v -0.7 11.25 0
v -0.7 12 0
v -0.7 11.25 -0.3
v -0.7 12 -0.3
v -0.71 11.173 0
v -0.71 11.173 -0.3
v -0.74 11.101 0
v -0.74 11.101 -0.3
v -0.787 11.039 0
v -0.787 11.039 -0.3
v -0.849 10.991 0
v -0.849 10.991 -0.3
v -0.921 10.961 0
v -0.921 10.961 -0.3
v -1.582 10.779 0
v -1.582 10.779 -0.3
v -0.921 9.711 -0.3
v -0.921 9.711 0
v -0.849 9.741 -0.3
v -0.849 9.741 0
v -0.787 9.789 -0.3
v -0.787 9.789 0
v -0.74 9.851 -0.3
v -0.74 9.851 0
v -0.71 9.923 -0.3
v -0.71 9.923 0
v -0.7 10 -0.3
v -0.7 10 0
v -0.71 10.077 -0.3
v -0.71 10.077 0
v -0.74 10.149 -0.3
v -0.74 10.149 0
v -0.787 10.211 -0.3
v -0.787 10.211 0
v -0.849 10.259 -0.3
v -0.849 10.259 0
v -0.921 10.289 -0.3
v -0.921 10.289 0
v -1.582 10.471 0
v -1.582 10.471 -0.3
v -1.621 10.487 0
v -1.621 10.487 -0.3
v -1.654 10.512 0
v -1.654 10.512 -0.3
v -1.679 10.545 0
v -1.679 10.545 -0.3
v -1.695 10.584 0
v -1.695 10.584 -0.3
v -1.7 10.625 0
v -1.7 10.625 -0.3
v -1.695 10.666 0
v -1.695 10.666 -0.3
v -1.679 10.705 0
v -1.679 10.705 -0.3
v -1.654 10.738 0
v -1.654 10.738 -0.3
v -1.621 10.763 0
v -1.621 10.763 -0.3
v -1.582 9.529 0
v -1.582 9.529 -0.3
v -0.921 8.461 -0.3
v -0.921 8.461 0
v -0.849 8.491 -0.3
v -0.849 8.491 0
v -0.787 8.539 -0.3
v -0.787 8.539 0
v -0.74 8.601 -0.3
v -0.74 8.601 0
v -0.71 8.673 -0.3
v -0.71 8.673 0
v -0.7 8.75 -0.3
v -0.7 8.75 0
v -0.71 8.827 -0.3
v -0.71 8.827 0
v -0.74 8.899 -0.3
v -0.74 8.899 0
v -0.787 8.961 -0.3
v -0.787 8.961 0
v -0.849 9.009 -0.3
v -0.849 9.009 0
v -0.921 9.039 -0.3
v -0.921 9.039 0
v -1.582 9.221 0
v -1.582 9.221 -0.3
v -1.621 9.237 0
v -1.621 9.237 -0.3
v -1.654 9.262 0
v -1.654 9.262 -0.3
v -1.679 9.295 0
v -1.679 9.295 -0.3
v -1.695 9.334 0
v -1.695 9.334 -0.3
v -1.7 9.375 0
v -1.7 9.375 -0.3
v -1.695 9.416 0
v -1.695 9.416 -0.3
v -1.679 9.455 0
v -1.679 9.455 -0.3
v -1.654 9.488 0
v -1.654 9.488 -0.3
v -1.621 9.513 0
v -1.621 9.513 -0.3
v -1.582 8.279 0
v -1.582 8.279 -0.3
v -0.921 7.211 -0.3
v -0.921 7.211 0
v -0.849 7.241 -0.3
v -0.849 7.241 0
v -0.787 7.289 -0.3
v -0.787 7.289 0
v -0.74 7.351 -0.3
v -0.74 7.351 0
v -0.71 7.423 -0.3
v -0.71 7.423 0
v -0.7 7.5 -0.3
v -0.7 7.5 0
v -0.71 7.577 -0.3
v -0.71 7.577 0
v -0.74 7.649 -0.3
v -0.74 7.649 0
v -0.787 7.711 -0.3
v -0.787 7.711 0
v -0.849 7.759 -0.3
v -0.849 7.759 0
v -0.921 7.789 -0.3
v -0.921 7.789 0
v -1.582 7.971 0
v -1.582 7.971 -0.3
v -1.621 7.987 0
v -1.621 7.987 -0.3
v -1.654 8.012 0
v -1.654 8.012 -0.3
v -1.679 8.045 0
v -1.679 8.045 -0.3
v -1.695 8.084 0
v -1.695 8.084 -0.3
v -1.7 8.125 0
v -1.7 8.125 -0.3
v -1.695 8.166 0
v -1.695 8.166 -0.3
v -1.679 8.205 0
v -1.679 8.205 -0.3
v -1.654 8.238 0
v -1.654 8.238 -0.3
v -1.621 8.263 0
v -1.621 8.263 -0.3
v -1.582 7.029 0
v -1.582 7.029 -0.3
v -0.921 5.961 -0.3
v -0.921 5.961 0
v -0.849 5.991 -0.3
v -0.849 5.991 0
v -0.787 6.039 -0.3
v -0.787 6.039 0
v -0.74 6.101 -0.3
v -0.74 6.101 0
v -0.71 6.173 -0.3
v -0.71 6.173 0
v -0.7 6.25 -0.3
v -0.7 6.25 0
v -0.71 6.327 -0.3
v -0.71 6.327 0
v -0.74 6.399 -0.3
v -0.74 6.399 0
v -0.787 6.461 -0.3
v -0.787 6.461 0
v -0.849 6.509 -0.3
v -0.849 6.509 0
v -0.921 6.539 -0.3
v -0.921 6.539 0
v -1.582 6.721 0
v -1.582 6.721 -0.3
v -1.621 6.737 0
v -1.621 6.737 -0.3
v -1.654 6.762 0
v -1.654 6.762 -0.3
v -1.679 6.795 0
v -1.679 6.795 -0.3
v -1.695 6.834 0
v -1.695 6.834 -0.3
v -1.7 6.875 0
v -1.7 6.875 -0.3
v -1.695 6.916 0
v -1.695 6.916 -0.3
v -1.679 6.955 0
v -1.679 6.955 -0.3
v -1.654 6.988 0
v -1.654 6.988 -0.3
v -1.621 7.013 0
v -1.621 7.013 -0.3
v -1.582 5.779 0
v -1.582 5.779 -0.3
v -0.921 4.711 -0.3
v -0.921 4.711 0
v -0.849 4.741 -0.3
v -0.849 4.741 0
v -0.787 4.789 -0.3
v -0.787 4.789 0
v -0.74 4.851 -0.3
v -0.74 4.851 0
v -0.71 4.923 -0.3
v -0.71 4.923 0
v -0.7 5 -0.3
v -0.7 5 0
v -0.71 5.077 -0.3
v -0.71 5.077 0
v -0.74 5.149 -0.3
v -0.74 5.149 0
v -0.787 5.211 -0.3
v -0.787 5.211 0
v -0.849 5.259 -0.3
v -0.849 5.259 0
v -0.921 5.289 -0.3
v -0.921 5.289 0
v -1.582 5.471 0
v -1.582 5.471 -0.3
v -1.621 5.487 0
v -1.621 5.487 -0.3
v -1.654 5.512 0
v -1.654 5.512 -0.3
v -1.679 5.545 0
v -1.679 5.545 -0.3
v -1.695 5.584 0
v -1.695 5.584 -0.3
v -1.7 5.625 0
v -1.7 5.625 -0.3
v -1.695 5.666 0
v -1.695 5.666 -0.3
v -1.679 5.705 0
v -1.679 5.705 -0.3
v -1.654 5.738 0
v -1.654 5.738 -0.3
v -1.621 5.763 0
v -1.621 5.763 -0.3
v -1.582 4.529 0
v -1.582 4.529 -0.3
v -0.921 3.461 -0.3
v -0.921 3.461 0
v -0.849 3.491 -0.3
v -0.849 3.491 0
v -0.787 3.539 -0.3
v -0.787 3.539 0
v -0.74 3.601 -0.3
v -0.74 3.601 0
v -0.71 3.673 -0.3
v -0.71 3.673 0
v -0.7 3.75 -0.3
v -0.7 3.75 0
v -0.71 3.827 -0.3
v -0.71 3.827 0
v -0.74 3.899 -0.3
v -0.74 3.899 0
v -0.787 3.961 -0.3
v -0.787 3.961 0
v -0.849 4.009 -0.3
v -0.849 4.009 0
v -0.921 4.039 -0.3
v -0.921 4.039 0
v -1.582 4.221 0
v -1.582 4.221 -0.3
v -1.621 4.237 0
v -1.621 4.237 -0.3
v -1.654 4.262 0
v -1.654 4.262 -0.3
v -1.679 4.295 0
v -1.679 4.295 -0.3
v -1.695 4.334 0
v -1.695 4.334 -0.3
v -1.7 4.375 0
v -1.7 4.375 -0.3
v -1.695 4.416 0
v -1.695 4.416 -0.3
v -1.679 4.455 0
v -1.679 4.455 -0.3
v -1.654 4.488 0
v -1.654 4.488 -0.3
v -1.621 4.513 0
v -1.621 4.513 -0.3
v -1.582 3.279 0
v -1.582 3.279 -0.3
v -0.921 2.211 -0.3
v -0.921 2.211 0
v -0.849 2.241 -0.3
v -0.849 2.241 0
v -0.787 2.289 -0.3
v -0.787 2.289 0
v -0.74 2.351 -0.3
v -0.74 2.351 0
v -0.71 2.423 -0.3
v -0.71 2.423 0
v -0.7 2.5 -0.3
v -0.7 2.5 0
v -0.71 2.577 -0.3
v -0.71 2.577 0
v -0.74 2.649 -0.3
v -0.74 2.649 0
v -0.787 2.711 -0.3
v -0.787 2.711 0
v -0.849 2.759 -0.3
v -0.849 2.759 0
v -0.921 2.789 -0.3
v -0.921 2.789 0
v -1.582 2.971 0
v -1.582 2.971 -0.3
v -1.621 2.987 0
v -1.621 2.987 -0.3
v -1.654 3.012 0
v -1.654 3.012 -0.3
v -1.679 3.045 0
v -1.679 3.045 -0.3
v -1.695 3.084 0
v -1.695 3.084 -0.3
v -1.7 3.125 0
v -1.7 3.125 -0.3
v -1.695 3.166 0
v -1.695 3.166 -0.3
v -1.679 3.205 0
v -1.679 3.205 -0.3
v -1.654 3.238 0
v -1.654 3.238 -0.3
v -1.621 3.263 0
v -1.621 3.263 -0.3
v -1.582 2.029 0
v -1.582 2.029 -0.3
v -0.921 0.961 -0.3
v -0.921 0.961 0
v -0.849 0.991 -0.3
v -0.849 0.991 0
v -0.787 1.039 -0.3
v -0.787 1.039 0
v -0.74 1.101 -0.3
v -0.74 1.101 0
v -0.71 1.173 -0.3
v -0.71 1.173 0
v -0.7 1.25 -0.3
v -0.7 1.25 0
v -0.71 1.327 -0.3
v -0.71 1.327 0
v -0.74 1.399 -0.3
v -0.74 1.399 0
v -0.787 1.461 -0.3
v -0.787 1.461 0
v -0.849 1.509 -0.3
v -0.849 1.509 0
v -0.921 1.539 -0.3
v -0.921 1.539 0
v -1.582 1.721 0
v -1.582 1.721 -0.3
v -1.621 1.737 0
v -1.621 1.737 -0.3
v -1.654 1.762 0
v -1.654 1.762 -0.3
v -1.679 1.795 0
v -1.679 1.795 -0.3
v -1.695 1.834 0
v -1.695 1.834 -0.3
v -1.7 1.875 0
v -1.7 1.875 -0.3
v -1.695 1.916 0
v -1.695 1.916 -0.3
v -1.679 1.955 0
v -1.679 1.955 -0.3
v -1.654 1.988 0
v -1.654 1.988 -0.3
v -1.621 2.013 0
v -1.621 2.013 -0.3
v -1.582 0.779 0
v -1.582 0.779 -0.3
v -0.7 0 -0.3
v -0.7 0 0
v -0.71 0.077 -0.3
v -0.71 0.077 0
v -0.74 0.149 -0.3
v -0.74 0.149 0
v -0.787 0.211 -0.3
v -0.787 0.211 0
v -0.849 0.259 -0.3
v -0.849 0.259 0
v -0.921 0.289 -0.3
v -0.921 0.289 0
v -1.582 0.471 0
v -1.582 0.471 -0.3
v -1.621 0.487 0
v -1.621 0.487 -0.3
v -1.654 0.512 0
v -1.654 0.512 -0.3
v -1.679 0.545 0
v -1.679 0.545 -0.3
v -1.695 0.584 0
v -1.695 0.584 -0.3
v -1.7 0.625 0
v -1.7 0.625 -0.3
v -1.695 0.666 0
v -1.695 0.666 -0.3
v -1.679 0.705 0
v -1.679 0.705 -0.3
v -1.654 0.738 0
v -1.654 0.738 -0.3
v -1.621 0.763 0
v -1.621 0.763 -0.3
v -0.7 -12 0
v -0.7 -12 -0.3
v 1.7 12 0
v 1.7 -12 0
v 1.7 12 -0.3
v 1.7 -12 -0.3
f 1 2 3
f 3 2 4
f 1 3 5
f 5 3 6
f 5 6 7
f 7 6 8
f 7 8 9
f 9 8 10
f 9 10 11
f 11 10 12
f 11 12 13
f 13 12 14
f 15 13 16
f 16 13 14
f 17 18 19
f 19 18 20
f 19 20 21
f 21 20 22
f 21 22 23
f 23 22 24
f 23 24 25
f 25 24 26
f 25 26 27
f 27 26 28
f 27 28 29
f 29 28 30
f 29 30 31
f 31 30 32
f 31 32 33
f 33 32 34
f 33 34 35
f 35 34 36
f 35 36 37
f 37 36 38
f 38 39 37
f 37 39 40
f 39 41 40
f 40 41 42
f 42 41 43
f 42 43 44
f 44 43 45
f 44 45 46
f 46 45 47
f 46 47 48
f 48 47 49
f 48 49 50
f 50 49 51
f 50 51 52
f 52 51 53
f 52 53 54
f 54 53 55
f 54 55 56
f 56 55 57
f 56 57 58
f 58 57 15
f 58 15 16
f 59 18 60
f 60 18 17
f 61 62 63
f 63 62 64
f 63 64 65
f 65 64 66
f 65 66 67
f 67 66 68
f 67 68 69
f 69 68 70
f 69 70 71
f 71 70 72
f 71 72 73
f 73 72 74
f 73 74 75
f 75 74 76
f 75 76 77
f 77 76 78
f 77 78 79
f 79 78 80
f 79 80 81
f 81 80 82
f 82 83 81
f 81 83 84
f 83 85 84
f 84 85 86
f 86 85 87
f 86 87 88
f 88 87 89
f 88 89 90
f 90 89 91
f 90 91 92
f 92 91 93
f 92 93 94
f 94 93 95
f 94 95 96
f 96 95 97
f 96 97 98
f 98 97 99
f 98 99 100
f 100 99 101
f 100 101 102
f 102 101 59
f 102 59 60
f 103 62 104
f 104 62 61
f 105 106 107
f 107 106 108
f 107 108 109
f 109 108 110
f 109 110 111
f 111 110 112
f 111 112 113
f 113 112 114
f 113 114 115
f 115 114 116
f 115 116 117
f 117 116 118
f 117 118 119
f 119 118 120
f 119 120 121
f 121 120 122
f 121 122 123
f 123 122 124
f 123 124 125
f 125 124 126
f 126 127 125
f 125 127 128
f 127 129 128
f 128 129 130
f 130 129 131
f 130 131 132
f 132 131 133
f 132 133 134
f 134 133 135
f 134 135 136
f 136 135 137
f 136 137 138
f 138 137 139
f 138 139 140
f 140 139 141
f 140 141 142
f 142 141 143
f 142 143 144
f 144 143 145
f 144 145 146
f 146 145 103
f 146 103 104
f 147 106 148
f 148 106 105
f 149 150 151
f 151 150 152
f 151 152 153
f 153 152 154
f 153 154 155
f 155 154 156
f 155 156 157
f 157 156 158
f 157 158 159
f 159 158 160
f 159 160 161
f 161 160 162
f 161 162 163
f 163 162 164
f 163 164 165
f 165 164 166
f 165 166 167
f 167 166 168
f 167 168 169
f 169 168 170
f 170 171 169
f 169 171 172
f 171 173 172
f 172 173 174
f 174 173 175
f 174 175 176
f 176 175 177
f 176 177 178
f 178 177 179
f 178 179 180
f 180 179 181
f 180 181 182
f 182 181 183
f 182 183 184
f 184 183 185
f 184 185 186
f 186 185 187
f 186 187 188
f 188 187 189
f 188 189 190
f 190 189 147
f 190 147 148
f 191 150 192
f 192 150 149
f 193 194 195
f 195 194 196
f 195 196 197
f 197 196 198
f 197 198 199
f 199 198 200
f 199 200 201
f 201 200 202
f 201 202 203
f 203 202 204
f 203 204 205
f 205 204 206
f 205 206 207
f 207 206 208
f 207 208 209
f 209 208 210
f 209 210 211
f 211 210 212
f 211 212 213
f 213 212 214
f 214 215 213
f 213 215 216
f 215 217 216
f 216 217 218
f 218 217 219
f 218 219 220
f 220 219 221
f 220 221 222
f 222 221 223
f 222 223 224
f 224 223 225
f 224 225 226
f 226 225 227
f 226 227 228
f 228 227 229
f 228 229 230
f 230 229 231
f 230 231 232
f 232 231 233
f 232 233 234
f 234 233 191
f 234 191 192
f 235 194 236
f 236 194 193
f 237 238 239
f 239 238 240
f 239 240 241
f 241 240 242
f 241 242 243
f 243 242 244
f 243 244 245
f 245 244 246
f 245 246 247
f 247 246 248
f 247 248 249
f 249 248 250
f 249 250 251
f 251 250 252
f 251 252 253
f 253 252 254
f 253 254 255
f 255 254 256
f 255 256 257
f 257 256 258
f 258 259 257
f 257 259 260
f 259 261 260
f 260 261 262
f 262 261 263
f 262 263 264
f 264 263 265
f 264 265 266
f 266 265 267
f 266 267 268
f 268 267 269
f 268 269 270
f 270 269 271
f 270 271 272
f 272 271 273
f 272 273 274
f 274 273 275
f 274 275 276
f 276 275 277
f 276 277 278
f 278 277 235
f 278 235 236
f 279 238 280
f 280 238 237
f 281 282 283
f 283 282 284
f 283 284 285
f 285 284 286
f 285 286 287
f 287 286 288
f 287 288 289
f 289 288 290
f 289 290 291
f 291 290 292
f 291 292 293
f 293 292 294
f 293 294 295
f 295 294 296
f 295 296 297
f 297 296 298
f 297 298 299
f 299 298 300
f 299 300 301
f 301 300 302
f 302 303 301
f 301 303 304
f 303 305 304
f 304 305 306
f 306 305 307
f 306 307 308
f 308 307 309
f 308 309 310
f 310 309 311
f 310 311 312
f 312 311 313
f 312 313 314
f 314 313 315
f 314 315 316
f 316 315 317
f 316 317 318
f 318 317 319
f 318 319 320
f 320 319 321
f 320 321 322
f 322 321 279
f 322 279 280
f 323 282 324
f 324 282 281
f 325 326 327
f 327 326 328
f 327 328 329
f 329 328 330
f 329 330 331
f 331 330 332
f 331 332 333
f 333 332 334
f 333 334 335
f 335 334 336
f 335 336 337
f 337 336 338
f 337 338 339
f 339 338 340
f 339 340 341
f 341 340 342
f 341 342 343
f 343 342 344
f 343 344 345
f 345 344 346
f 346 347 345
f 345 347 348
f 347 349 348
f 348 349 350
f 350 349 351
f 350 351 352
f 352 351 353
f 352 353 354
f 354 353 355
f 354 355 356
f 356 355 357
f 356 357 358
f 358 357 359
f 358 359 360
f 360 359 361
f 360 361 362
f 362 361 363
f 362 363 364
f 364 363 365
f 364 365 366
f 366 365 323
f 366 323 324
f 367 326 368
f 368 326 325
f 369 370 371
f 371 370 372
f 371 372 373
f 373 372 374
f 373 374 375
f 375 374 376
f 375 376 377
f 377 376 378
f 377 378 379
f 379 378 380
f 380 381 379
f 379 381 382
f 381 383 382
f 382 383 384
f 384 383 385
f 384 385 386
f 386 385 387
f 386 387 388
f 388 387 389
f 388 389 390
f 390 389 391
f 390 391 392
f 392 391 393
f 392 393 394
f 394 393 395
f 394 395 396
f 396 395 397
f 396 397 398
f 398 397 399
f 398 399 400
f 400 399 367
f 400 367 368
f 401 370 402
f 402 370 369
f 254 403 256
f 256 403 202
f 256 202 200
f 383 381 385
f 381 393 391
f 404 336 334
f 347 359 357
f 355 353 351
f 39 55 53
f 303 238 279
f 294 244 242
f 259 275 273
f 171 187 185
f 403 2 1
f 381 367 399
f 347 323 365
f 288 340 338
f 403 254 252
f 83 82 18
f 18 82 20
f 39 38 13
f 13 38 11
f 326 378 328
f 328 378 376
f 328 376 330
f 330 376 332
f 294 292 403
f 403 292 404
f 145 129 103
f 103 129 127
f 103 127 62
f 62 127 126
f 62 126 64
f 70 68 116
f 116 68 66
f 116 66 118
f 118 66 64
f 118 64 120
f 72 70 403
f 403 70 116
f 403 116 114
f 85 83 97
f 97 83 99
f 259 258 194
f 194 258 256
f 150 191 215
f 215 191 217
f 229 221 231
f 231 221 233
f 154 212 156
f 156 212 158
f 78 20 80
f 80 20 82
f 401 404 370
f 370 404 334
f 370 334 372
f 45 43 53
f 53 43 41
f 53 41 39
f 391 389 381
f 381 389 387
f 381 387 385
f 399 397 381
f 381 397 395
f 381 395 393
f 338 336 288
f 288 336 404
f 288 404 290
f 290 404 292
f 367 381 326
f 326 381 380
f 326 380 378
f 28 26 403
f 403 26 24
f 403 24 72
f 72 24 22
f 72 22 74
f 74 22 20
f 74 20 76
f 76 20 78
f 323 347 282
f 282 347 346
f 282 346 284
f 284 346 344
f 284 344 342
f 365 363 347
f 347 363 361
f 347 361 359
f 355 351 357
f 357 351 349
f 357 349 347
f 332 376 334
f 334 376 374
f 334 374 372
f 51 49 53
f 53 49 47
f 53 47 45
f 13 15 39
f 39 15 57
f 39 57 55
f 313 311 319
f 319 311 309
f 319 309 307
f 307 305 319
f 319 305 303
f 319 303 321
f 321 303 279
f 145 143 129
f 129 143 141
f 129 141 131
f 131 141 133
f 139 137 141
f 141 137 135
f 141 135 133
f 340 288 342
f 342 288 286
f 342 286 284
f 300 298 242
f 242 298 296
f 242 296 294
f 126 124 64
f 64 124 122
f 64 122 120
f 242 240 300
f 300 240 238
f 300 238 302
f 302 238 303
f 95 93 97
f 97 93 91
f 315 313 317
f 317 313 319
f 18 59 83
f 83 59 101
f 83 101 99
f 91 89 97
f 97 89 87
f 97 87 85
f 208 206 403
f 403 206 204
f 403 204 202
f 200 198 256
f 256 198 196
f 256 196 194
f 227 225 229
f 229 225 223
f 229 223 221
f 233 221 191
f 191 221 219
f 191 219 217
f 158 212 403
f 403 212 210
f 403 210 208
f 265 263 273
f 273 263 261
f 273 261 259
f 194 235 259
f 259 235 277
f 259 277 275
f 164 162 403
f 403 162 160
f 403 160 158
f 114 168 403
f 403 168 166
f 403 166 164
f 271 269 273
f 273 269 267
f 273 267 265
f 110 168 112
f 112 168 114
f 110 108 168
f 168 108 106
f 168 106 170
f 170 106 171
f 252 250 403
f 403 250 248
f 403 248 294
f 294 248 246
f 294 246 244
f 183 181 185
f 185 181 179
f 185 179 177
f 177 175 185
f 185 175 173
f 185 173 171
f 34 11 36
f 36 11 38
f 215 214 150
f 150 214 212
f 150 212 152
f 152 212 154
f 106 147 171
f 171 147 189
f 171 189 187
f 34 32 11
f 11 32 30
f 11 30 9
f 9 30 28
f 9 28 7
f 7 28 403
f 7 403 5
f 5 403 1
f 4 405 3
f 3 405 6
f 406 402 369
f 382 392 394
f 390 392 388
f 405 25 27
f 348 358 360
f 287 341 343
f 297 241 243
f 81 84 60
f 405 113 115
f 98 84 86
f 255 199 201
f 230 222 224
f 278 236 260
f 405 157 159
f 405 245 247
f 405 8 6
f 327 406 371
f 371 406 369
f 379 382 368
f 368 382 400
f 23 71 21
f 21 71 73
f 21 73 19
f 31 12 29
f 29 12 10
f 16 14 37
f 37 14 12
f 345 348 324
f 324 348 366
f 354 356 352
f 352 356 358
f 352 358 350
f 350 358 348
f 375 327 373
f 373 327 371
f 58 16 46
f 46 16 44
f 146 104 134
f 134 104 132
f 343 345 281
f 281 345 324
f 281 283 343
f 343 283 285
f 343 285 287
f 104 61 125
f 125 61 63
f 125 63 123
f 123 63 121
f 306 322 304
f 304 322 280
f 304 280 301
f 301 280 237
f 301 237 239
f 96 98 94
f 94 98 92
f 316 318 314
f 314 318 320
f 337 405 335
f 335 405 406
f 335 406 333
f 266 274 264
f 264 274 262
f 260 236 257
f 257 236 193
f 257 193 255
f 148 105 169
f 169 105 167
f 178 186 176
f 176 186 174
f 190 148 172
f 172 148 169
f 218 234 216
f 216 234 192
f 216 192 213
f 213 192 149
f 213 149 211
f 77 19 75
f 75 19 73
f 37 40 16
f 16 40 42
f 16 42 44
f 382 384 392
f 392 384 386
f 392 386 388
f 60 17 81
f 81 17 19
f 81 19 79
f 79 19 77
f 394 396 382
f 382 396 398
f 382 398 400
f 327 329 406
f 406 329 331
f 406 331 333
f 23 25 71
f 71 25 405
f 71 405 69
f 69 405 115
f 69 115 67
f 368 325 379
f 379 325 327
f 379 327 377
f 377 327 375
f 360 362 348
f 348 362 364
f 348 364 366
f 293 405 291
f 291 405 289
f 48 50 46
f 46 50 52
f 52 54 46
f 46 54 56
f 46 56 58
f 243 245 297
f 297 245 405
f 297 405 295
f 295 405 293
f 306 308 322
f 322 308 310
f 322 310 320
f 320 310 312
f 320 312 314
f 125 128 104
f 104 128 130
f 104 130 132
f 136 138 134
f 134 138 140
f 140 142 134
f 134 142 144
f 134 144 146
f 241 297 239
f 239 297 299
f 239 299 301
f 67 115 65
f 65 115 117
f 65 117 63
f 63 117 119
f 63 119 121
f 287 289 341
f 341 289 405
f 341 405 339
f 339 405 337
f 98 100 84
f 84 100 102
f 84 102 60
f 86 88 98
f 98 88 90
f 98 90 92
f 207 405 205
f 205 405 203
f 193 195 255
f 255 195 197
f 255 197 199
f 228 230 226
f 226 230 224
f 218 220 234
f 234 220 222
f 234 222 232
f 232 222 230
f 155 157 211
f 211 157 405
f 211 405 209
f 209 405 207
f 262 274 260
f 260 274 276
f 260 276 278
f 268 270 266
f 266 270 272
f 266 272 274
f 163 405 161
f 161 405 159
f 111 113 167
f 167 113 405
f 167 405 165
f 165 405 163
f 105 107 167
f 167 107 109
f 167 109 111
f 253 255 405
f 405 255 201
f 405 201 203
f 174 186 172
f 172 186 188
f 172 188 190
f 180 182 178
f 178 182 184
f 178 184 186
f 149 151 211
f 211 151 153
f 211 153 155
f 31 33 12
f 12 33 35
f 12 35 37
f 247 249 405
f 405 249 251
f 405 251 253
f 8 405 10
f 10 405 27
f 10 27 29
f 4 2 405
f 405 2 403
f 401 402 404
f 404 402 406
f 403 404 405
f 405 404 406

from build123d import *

# Parameters (mm, degrees)
SKETCH1_W           = 3.4
SKETCH1_H           = 24
BOSS_EXTRUDE1_DEPTH = 0.3
CUT_EXTRUDE1_DEPTH  = 1.3
CUT_EXTRUDE2_DEPTH  = 1.3
LPATTERN1_COUNT     = 9
LPATTERN1_PITCH     = 1.25
CUT_EXTRUDE4_DEPTH  = 1.3


with BuildPart() as part:
    # Sketch1 → Boss-Extrude1 (new body)
    with BuildSketch(Plane.XY):
        Rectangle(SKETCH1_W, SKETCH1_H)
    extrude(amount=-BOSS_EXTRUDE1_DEPTH)

    # Sketch2 → Cut-Extrude1 (cut, through all)
    with BuildSketch(Plane.XY):
        with BuildLine():
            Line((-1.7, -12), (-0.7, -12))
            Line((-0.7, -12), (-0.7, 0))
            ThreePointArc((-0.7, 0), (-0.763092877, 0.185865622), (-0.926295644, 0.294914224))
            Line((-0.926295644, 0.294914224), (-1.581411047, 0.470451868))
            ThreePointArc((-1.581411047, 0.470451868), (-1.666936534, 0.527598171), (-1.7, 0.625))
            Line((-1.7, 0.625), (-1.7, -12))
        make_face()
    extrude(amount=-CUT_EXTRUDE1_DEPTH, mode=Mode.SUBTRACT)

    # Sketch3 → Cut-Extrude2 (cut, through all)
    with BuildSketch(Plane.XY):
        with BuildLine():
            Line((-1.581411047, 0.779548132), (-0.926295644, 0.955085776))
            ThreePointArc((-0.926295644, 0.955085776), (-0.7, 1.25), (-0.926295644, 1.544914224))
            Line((-0.926295644, 1.544914224), (-1.581411047, 1.720451868))
            ThreePointArc((-1.581411047, 1.720451868), (-1.666936534, 1.777598171), (-1.7, 1.875))
            Line((-1.7, 1.875), (-1.7, 0.625))
            ThreePointArc((-1.7, 0.625), (-1.666936534, 0.722401829), (-1.581411047, 0.779548132))
        make_face()
    cut_extrude2 = extrude(amount=-CUT_EXTRUDE2_DEPTH, mode=Mode.SUBTRACT)

    # LPattern1: Cut-Extrude2 ×9
    with Locations(*[(0, i * LPATTERN1_PITCH, 0) for i in range(1, LPATTERN1_COUNT)]):
        add(cut_extrude2, mode=Mode.SUBTRACT)

    # Sketch4 → Cut-Extrude4 (cut, through all)
    with BuildSketch(Plane.XY):
        with BuildLine():
            Line((-0.7, 11.25), (-0.7, 12))
            Line((-0.7, 12), (-1.7, 12))
            Line((-1.7, 12), (-1.7, 11.875))
            ThreePointArc((-1.7, 11.875), (-1.666936534, 11.777598171), (-1.581411047, 11.720451868))
            Line((-1.581411047, 11.720451868), (-0.926295644, 11.544914224))
            ThreePointArc((-0.926295644, 11.544914224), (-0.763092877, 11.435865622), (-0.7, 11.25))
        make_face()
    extrude(amount=-CUT_EXTRUDE4_DEPTH, mode=Mode.SUBTRACT)


solid = part.part
